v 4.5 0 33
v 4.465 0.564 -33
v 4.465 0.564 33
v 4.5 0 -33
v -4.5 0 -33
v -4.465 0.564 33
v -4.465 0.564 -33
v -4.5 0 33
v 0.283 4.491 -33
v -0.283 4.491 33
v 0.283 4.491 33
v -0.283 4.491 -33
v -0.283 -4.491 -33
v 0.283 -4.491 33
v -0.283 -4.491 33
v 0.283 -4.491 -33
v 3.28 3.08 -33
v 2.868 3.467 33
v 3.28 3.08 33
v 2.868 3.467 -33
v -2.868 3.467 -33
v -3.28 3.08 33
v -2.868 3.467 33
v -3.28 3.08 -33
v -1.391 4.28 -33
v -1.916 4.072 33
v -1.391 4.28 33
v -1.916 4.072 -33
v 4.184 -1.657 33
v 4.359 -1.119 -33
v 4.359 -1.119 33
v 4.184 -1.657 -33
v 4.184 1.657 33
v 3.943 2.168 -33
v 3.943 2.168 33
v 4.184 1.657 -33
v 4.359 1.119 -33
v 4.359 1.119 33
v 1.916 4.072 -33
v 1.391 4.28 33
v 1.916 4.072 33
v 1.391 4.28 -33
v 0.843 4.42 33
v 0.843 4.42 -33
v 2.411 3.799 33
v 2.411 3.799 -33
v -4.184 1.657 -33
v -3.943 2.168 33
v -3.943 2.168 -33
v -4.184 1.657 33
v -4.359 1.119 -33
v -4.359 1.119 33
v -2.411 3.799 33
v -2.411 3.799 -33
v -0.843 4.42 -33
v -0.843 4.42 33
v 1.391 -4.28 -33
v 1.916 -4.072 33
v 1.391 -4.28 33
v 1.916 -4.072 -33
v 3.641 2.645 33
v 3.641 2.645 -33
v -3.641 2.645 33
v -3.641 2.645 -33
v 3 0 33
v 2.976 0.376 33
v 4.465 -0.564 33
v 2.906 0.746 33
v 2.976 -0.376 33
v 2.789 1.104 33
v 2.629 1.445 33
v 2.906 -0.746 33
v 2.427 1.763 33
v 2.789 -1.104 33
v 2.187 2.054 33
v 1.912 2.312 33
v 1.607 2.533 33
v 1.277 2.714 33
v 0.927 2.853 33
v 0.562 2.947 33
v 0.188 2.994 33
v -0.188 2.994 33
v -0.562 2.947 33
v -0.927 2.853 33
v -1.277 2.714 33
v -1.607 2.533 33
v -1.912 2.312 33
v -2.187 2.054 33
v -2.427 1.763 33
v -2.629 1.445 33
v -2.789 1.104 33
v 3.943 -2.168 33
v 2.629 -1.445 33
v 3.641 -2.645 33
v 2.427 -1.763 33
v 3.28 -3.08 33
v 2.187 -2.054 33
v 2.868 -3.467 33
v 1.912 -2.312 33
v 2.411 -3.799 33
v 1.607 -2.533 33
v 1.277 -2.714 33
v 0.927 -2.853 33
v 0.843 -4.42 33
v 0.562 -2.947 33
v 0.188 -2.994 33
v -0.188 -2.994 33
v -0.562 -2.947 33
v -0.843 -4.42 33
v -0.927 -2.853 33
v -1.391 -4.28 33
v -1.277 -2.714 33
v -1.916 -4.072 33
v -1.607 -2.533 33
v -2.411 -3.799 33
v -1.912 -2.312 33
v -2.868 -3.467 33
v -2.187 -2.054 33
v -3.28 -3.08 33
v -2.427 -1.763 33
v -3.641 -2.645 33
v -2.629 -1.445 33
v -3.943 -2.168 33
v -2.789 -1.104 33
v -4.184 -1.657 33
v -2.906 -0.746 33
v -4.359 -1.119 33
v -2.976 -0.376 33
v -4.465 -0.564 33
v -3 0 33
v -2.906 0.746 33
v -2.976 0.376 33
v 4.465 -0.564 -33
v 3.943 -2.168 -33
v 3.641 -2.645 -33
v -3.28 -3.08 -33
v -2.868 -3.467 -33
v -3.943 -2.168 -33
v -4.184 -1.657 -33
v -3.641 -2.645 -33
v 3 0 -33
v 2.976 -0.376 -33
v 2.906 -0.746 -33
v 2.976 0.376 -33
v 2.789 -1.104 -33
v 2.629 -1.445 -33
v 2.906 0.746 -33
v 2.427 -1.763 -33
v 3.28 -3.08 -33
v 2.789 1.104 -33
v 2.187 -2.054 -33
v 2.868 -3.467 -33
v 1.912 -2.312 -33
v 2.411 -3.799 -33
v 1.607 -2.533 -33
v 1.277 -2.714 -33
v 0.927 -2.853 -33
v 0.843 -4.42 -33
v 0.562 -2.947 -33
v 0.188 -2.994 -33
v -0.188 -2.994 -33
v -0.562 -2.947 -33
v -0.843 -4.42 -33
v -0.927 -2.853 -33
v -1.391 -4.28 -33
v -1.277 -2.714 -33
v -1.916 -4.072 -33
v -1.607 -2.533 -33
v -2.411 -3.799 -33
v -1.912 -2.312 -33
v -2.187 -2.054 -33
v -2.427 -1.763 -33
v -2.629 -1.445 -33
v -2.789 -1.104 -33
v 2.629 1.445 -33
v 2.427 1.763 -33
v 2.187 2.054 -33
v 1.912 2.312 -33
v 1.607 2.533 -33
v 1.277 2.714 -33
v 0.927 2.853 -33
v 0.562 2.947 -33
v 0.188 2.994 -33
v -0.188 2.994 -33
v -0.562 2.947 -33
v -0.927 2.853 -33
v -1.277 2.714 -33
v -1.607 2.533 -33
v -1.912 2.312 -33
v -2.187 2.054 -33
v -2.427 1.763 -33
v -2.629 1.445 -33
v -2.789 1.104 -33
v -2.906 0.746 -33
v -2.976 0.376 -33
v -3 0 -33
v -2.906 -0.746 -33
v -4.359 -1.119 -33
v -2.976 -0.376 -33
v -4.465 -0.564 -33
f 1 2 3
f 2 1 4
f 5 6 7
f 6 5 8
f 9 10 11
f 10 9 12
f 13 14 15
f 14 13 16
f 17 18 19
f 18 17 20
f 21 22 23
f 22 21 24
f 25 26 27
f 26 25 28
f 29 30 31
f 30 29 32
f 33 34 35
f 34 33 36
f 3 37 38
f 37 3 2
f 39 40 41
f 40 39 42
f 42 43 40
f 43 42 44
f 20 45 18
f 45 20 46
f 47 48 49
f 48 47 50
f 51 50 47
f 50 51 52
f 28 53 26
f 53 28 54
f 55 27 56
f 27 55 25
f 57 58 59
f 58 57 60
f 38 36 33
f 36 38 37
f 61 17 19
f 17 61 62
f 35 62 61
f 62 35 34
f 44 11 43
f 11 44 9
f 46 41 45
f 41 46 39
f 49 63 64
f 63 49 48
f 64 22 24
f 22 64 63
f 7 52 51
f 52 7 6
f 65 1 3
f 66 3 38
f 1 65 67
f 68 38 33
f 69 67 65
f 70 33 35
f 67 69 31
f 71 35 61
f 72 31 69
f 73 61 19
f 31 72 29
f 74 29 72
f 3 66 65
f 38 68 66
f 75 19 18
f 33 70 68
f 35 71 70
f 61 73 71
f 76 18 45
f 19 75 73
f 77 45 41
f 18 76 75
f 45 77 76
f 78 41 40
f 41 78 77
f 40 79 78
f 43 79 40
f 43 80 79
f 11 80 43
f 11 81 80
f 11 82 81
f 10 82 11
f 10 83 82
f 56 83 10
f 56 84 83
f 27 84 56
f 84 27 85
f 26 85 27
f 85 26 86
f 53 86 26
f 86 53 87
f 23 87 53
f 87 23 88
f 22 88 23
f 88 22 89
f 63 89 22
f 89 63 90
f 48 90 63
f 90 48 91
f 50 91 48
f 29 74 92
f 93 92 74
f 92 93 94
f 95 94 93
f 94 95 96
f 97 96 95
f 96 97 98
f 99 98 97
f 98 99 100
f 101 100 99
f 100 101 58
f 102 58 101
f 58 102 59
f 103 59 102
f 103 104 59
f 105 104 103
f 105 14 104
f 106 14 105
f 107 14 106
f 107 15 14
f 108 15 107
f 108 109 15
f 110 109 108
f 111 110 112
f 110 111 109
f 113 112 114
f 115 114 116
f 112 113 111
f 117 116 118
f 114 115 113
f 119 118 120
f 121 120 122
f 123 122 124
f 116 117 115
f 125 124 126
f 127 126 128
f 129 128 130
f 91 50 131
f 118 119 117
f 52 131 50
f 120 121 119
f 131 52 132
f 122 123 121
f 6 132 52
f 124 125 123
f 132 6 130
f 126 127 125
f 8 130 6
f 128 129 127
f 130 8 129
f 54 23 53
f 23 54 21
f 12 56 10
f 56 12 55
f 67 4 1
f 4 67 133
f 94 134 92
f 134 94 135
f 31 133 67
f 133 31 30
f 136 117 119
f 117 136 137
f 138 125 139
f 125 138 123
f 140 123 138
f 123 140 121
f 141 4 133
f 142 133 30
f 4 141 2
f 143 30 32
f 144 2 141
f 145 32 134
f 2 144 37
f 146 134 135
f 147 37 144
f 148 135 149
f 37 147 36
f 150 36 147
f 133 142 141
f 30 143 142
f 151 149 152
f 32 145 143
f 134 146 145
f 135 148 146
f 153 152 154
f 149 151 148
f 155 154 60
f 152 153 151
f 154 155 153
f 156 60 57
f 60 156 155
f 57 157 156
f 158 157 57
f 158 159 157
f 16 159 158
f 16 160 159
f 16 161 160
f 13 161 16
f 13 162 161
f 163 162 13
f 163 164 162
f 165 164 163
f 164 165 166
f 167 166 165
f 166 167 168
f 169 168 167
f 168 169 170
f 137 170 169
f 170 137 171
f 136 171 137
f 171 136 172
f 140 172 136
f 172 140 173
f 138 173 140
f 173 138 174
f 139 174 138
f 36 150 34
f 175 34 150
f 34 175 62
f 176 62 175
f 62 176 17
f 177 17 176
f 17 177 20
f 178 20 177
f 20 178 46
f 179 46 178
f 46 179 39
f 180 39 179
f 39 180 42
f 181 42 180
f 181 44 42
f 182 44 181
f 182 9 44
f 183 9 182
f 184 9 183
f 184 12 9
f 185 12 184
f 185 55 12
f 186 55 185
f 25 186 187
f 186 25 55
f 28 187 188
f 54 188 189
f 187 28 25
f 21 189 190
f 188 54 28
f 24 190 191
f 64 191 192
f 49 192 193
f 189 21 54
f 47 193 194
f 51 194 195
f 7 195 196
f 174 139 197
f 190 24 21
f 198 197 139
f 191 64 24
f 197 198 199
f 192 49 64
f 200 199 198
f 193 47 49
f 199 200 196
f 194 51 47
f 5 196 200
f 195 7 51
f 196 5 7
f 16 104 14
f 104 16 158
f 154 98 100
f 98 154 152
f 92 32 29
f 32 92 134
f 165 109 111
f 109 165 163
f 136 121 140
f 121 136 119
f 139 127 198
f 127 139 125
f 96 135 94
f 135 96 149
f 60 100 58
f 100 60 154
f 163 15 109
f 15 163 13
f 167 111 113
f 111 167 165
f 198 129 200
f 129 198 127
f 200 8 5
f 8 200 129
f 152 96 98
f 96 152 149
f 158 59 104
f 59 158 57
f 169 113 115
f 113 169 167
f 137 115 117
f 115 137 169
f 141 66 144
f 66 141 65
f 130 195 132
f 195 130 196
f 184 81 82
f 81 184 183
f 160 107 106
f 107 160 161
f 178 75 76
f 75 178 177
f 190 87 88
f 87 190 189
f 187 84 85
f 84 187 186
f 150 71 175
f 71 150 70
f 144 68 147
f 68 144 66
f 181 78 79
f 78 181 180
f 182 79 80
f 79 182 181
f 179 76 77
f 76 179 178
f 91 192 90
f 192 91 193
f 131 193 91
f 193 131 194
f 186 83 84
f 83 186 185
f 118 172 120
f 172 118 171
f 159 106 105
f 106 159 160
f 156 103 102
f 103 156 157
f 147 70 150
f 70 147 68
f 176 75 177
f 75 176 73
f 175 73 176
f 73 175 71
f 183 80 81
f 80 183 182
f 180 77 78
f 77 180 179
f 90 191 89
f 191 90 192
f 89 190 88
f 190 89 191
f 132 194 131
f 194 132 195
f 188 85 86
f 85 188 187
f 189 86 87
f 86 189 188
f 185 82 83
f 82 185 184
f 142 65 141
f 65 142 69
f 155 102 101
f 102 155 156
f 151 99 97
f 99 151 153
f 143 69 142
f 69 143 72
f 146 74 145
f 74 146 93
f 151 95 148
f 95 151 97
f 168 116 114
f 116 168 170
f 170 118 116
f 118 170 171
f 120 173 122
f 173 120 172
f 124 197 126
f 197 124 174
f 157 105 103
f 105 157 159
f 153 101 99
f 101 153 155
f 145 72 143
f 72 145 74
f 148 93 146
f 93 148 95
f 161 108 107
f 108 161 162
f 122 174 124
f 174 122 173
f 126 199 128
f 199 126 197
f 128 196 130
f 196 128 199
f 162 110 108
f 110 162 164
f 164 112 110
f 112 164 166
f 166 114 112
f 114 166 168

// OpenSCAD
$fn = 50;


difference() {
	union() {
		translate(v = [0, 0, -33.0000000000]) {
			cylinder(h = 66, r = 4.5000000000);
		}
	}
	union() {
		translate(v = [0, 0, -100.0000000000]) {
			cylinder(h = 200, r = 3);
		}
	}
}
